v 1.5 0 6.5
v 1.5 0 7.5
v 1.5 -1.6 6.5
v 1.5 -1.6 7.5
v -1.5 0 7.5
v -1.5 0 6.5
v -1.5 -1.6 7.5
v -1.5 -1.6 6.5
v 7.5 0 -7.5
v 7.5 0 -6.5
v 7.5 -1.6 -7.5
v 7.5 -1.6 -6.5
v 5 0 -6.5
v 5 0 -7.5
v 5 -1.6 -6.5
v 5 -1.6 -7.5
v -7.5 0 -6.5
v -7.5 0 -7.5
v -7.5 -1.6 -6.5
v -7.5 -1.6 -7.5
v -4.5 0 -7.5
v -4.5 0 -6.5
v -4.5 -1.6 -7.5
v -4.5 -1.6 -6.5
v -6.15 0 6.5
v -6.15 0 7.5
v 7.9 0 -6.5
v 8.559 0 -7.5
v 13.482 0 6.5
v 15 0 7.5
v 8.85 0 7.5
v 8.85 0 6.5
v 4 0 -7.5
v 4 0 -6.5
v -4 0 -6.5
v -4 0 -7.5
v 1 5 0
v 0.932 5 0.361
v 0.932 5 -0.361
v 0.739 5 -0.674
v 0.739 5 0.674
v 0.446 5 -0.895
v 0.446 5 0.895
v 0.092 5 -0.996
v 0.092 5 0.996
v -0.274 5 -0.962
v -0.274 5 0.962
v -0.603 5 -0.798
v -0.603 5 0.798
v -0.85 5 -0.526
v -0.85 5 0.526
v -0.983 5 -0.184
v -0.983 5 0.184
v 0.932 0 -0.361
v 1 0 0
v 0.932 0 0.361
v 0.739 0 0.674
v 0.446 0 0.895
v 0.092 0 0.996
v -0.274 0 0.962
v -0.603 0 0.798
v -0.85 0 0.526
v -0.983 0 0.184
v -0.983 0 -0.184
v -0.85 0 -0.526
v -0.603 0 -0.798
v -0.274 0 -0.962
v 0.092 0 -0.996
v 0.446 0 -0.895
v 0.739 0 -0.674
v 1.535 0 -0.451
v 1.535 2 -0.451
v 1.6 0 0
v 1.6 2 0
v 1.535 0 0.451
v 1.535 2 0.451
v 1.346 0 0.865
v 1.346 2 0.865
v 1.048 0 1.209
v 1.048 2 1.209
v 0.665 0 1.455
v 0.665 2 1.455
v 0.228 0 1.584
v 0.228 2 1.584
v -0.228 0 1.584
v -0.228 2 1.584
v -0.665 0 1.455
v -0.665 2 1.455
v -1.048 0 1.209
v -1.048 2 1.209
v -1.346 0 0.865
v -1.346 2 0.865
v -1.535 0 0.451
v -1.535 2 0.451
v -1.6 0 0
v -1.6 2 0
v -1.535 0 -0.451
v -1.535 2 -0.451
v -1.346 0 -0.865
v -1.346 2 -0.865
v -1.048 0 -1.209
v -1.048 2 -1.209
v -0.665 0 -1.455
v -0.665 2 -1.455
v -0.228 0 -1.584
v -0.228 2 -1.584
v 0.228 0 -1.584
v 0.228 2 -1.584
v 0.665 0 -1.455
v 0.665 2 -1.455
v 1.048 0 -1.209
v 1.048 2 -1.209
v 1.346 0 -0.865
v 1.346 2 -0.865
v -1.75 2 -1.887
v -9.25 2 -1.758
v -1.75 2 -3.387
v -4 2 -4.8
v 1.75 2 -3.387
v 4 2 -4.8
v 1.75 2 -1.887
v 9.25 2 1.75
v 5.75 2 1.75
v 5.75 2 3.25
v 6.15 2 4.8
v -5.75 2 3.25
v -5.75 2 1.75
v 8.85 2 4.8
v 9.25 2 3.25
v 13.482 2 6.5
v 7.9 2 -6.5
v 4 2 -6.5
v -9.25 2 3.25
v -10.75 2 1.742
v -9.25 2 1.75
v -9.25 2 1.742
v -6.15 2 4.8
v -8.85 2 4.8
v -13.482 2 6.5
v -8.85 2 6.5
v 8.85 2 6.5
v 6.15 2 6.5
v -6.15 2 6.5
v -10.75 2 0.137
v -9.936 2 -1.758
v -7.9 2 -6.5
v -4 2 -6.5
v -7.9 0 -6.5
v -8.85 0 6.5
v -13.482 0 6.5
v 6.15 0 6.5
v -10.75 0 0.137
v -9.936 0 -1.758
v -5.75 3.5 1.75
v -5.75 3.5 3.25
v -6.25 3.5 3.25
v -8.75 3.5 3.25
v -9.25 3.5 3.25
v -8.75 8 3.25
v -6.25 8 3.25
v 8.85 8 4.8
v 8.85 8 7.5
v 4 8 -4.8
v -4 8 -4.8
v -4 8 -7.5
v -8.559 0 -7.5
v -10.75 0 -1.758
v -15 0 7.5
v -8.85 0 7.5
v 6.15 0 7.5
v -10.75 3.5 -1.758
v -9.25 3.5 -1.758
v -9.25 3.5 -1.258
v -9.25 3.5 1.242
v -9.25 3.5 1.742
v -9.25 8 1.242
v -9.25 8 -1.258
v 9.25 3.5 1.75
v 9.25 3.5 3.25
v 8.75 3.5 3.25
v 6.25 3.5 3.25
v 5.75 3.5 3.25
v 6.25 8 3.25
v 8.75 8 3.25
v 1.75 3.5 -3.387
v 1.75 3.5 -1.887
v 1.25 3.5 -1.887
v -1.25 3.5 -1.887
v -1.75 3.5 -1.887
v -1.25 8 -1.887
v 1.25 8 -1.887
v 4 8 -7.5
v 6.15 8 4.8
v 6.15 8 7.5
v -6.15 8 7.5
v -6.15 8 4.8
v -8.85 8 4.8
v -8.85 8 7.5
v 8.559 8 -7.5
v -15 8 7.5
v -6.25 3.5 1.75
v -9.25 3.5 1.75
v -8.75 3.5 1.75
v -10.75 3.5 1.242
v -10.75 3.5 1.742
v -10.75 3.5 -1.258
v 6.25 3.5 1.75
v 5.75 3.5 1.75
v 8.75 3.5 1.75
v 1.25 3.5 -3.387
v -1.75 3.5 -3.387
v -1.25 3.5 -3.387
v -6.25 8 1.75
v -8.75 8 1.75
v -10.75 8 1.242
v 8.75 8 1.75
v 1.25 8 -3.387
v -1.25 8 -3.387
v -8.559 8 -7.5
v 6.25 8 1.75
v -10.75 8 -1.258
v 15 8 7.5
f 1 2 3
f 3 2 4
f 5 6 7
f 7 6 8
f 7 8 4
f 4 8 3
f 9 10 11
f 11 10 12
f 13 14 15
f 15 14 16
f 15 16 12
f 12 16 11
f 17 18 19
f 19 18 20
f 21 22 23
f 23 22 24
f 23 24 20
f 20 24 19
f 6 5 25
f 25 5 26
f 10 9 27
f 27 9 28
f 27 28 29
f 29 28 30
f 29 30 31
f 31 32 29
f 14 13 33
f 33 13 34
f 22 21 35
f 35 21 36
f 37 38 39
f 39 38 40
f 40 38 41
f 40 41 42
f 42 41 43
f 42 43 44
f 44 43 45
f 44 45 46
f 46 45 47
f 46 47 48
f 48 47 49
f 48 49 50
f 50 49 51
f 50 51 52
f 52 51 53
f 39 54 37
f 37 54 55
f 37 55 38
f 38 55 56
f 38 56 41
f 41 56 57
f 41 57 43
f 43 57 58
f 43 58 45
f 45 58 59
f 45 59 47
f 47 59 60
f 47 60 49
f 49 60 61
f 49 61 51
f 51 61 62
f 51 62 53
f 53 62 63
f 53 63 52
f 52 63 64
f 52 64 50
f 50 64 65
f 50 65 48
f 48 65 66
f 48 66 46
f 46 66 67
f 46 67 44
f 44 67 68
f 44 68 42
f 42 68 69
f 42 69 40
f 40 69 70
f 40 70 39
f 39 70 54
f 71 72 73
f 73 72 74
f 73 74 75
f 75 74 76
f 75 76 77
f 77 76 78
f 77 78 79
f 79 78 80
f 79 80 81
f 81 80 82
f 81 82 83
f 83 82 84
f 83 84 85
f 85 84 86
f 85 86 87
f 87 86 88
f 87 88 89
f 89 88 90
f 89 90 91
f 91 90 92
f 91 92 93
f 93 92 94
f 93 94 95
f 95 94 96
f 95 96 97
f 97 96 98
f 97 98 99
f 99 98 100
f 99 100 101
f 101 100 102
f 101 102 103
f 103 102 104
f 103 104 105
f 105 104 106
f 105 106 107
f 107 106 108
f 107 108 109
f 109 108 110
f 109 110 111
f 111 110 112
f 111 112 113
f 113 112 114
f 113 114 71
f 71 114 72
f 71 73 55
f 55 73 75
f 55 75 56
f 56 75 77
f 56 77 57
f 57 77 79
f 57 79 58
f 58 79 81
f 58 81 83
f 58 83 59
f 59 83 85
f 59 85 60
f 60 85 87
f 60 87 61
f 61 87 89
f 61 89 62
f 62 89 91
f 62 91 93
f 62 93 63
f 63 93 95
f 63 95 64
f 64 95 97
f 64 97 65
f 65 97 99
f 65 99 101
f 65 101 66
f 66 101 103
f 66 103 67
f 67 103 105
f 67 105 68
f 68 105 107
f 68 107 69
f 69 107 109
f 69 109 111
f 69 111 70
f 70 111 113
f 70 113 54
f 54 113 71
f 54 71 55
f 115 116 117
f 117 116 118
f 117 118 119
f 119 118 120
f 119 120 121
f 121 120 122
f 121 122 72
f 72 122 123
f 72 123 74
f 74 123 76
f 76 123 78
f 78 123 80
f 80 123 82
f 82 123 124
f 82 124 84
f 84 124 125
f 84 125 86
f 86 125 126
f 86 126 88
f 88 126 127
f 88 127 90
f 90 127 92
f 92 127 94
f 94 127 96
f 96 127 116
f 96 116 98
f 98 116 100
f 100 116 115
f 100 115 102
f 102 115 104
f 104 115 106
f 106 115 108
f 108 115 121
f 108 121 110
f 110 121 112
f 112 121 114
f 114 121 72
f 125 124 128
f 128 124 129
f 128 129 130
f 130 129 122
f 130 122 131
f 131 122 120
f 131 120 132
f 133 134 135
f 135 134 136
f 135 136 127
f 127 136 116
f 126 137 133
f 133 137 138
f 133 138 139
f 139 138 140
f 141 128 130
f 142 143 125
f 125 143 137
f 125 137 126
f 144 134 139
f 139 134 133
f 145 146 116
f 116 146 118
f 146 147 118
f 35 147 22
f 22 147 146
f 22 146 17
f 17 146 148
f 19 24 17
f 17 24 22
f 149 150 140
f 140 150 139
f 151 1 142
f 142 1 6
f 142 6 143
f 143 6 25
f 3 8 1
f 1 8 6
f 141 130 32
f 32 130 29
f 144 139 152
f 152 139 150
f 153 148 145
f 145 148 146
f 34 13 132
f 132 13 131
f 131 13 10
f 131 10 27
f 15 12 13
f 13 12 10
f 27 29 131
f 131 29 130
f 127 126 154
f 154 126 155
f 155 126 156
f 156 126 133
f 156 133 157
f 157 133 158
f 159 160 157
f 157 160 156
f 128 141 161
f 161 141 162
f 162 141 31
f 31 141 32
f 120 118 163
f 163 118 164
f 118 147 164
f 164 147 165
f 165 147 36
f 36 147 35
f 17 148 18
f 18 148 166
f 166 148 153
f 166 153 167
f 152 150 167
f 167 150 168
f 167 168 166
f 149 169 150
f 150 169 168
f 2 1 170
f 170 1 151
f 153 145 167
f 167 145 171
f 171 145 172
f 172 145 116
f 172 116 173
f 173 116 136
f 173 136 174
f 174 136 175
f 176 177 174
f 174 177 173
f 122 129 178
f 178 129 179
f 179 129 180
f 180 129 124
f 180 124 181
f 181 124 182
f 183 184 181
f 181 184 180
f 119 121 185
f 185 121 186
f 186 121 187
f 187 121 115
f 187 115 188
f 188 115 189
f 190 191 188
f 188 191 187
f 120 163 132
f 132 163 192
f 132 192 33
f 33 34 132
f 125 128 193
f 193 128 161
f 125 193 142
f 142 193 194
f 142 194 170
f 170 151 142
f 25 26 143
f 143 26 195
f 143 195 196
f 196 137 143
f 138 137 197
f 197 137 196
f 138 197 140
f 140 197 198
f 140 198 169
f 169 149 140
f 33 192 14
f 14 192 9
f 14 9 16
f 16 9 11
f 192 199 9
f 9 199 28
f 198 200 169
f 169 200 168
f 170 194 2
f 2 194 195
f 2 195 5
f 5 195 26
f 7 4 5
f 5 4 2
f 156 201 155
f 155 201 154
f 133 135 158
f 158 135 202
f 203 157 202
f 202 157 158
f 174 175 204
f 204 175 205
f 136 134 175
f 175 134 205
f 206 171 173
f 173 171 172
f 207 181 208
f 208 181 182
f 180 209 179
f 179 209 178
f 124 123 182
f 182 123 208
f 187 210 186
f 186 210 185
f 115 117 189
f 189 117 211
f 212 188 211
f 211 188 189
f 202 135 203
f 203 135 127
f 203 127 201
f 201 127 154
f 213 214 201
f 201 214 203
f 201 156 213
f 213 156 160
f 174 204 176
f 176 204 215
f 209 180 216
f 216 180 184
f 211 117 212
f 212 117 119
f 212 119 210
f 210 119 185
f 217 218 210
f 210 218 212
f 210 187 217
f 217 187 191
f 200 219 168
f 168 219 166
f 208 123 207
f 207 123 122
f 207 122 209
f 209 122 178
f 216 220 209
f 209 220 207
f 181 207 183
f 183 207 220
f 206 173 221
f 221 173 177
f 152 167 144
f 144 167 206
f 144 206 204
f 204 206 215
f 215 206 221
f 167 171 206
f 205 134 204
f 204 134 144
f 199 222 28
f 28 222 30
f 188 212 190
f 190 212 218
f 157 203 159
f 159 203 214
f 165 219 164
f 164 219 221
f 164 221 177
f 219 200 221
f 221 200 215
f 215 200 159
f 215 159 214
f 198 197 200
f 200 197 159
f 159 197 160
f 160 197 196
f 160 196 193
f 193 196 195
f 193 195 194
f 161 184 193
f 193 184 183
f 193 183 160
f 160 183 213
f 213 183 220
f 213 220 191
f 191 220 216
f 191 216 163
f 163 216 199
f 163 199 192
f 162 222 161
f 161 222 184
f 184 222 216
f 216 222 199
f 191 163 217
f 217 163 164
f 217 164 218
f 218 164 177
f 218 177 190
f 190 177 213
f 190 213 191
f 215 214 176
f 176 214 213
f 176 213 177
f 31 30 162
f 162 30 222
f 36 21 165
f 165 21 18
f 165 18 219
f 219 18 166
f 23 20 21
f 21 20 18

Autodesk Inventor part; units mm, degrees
ref_plane "YZ Plane" through (0, 0, 0) normal (1, 0, 0) x (0, 1, 0)
ref_plane "XZ Plane" through (0, 0, 0) normal (0, 1, 0) x (-1, 0, 0)
ref_plane "XY Plane" through (0, 0, 0) normal (0, 0, 1) x (1, 0, 0)
sketch "Sketch1" plane through (0, 0, 0) normal (0, 1, 0) x (-1, 0, 0)
  line L0 (-15, 7.5) -> (15, 7.5)
  line L1 (15, 7.5) -> (15, -7.5)
  line L2 (15, -7.5) -> (-15, -7.5)
  line L3 (-15, -7.5) -> (-15, 7.5)
  line L4 (-15, 7.5) -> (15, -7.5) construction
  line L5 (15, 7.5) -> (-15, -7.5) construction
  point P0 (0, 0)
  dimension "d0" = 30
  dimension "d1" = 15
extrude "Extrusion1" add sketch "Sketch1" along normal blind 8
sketch "Sketch3" plane through (0, 8, 0) normal (0, 1, 0) x (1, 0, 0)
  line L0 (-15, 7.5) -> (-15, -7.5) projected
  line L1 (-15, -7.5) -> (15, -7.5) projected
  line L2 (-15, -7.5) -> (15, -7.5)
  line L3 (15, -7.5) -> (8.5, 7.6369)
  line L4 (-15, -7.5) -> (-8.5, 7.6369)
  line L5 (-8.5, 7.6369) -> (8.5, 7.6369)
  line L6 (-10.75, -1.2417) -> (-9.25, -1.2417)
  line L7 (-9.25, -1.2417) -> (-9.25, 1.2583)
  line L8 (-9.25, 1.2583) -> (-10.75, 1.2583)
  line L9 (-10.75, 1.2583) -> (-10.75, -1.2417)
  line L10 (-10.75, -1.2417) -> (-9.25, 1.2583) construction
  line L11 (-9.25, -1.2417) -> (-10.75, 1.2583) construction
  line L12 (-6.25, -3.25) -> (-8.75, -3.25)
  line L13 (-8.75, -3.25) -> (-8.75, -1.75)
  line L14 (-8.75, -1.75) -> (-6.25, -1.75)
  line L15 (-6.25, -1.75) -> (-6.25, -3.25)
  line L16 (-6.25, -3.25) -> (-8.75, -1.75) construction
  line L17 (-8.75, -3.25) -> (-6.25, -1.75) construction
  line L18 (8.75, -1.75) -> (6.25, -1.75)
  line L19 (6.25, -1.75) -> (6.25, -3.25)
  line L20 (6.25, -3.25) -> (8.75, -3.25)
  line L21 (8.75, -3.25) -> (8.75, -1.75)
  line L22 (8.75, -1.75) -> (6.25, -3.25) construction
  line L23 (6.25, -1.75) -> (8.75, -3.25) construction
  line L24 (15, 7.5) -> (-15, 7.5) projected
  line L25 (-15, -7.5) -> (-15, 7.5)
  line L26 (-15, 7.5) -> (15, 7.5)
  line L27 (15, 7.5) -> (15, -7.5)
  line L28 (1.25, 1.8869) -> (-1.25, 1.8869)
  line L29 (-1.25, 1.8869) -> (-1.25, 3.3869)
  line L30 (-1.25, 3.3869) -> (1.25, 3.3869)
  line L31 (1.25, 3.3869) -> (1.25, 1.8869)
  line L32 (1.25, 1.8869) -> (-1.25, 3.3869) construction
  line L33 (-1.25, 1.8869) -> (1.25, 3.3869) construction
  point P0 (0, 0)
  point P1 (-10, 0.0083)
  point P2 (-7.5, -2.5)
  point P3 (7.5, -2.5)
  point P4 (0, -7.5)
  point P5 (0, -7.5)
  point P6 (0, 2.6369)
  point P7 (8.5588, 7.5)
  point P8 (-8.5588, 7.5)
  dimension "d19" = 17
  dimension "d20" = 1.5
  dimension "d21" = 2.5
  dimension "d22" = 5
  dimension "d24" = 7.5
  dimension "d25" = 7.5
  dimension "d26" = 5
  dimension "d27" = 5
  dimension "d28" = 5
  dimension "d29" = 0
extrude "Extrusion3" cut sketch "Sketch3" against normal blind 8 contours L24 L4 L0 | L3 L24 L27 | L9 L8 L7 L6 | L12 L13 L14 L15 | L21 L20 L19 L18 | L28 L29 L30 L31
sketch "Sketch4" plane through (0, 0, 0) normal (0, -1, 0) x (1, 0, 0)
  line L0 (-9.25, 1.7417) -> (-10.75, 1.7417)
  line L1 (-10.75, 1.7417) -> (-10.75, -1.7583)
  line L2 (-10.75, -1.7583) -> (-9.25, -1.7583)
  line L3 (-9.25, -1.7583) -> (-9.25, 1.7417)
  line L4 (-9.25, 1.7417) -> (-10.75, -1.7583) construction
  line L5 (-10.75, 1.7417) -> (-9.25, -1.7583) construction
  line L6 (-10.75, -1.2583) -> (-10.75, 1.2417) projected
  line L7 (-9.25, 1.2417) -> (-9.25, -1.2583) projected
  line L8 (-9.25, -1.2583) -> (-10.75, -1.2583) projected
  line L9 (-10.75, 1.2417) -> (-9.25, 1.2417) projected
  line L10 (-8.75, 3.25) -> (-6.25, 3.25) construction
  line L11 (-7.5, 3.25) -> (-7.5, 1.75) construction
  line L12 (-8.75, 1.75) -> (-6.25, 1.75) construction
  line L13 (-1.25, -1.8869) -> (1.25, -1.8869) construction
  line L14 (0, -1.8869) -> (0, -3.3869) construction
  line L15 (1.25, -3.3869) -> (-1.25, -3.3869) construction
  line L16 (6.25, 3.25) -> (8.75, 3.25) construction
  line L17 (7.5, 3.25) -> (7.5, 1.75) construction
  line L18 (8.75, 1.75) -> (6.25, 1.75) construction
  line L19 (9.25, 3.25) -> (5.75, 3.25)
  line L20 (5.75, 3.25) -> (5.75, 1.75)
  line L21 (5.75, 1.75) -> (9.25, 1.75)
  line L22 (9.25, 1.75) -> (9.25, 3.25)
  line L23 (9.25, 3.25) -> (5.75, 1.75) construction
  line L24 (5.75, 3.25) -> (9.25, 1.75) construction
  line L25 (1.75, -1.8869) -> (-1.75, -1.8869)
  line L26 (-1.75, -1.8869) -> (-1.75, -3.3869)
  line L27 (-1.75, -3.3869) -> (1.75, -3.3869)
  line L28 (1.75, -3.3869) -> (1.75, -1.8869)
  line L29 (1.75, -1.8869) -> (-1.75, -3.3869) construction
  line L30 (-1.75, -1.8869) -> (1.75, -3.3869) construction
  line L31 (-5.75, 3.25) -> (-9.25, 3.25)
  line L32 (-9.25, 3.25) -> (-9.25, 1.75)
  line L33 (-9.25, 1.75) -> (-5.75, 1.75)
  line L34 (-5.75, 1.75) -> (-5.75, 3.25)
  line L35 (-5.75, 3.25) -> (-9.25, 1.75) construction
  line L36 (-9.25, 3.25) -> (-5.75, 1.75) construction
  point P0 (0, 0)
  point P1 (-10, -0.0083)
  point P2 (7.5, 2.5)
  point P3 (0, -2.6369)
  point P4 (-7.5, 2.5)
  point P5 (-10.75, 1.2417)
  dimension "d32" = 0
  dimension "d33" = 0
  dimension "d34" = 0.5
  dimension "d35" = 0.5
  dimension "d36" = 3.5
  dimension "d37" = 3.5
  dimension "d38" = 3.5
extrude "Extrusion4" cut sketch "Sketch4" against normal blind 3.5
sketch "Sketch5" plane through (0, 0, 0) normal (0, -1, 0) x (1, 0, 0)
  line L0 (-9.25, -1.7583) -> (-10.75, -1.7583) projected
  line L1 (-15, 7.5) -> (-8.5588, -7.5) projected
  line L2 (8.5588, -7.5) -> (-8.5588, -7.5) projected
  line L3 (-7.8999, -6.5) -> (7.8999, -6.5)
  line L4 (7.8999, -6.5) -> (13.4823, 6.5)
  line L5 (8.5588, -7.5) -> (15, 7.5) projected
  line L6 (-15, 7.5) -> (15, 7.5) projected
  line L7 (13.4823, 6.5) -> (-14, 6.5)
  line L8 (-7.8999, -6.5) -> (-13.4823, 6.5)
  point P0 (0, 0)
  point P1 (-13.4823, 6.5)
  dimension "d41" = 1
  dimension "d42" = 1
  dimension "d43" = 1
  dimension "d44" = 1
  dimension "d45" = 1
  dimension "d46" = 1
sketch "Sketch2" plane through (0, 8, 0) normal (0, 1, 0) x (1, 0, 0)
  line L0 (4, 7.5) -> (-4, 7.5)
  line L1 (-4, 7.5) -> (-4, 4.8)
  line L2 (-4, 4.8) -> (4, 4.8)
  line L3 (4, 4.8) -> (4, 7.5)
  line L4 (4, 7.5) -> (-4, 4.8) construction
  line L5 (-4, 7.5) -> (4, 4.8) construction
  line L6 (-6.15, -4.8) -> (-8.85, -4.8)
  line L7 (-8.85, -4.8) -> (-8.85, -7.5)
  line L8 (-8.85, -7.5) -> (-6.15, -7.5)
  line L9 (-6.15, -7.5) -> (-6.15, -4.8)
  line L10 (-6.15, -4.8) -> (-8.85, -7.5) construction
  line L11 (-8.85, -4.8) -> (-6.15, -7.5) construction
  line L12 (8.85, -4.8) -> (6.15, -4.8)
  line L13 (6.15, -4.8) -> (6.15, -7.5)
  line L14 (6.15, -7.5) -> (8.85, -7.5)
  line L15 (8.85, -7.5) -> (8.85, -4.8)
  line L16 (8.85, -4.8) -> (6.15, -7.5) construction
  line L17 (6.15, -4.8) -> (8.85, -7.5) construction
  point P0 (0, 0)
  point P1 (0, 6.15)
  point P2 (-7.5, -6.15)
  point P3 (7.5, -6.15)
  dimension "d8" = 8
  dimension "d9" = 2.7
  dimension "d10" = 7.5
  dimension "d11" = 2.7
  dimension "d12" = 7.5
  dimension "d13" = 7.5
  dimension "d15" = 7.5
  dimension "d16" = 7.5
extrude "Extrusion2" cut sketch "Sketch2" against normal blind 8
extrude "Extrusion5" cut sketch "Sketch5" against normal blind 2 contours L8 L7 L4 L3
sketch "Sketch6" plane through (0, 2, 0) normal (0, -1, 0) x (1, 0, 0)
  circle A0 centre (0, 0) radius 1
  circle A1 centre (0, 0) radius 1.6
  dimension "d49" = 2
  dimension "d50" = 0.6
extrude "Extrusion6" add sketch "Sketch6" along normal blind 2
sketch "Sketch7" plane through (0, 0, 0) normal (0, -1, 0) x (1, 0, 0)
  circle A0 centre (0, 0) radius 1
  dimension "d74" = 2
extrude "Extrusion7" cut sketch "Sketch7" against normal blind 5
sketch "Sketch8" plane through (0, 0, 0) normal (0, -1, 0) x (1, 0, 0)
  line L0 (-7.5, -7.5) -> (-4.5, -7.5)
  line L1 (-4.5, -7.5) -> (-4.5, -6.5)
  line L2 (-4.5, -6.5) -> (-7.5, -6.5)
  line L3 (-7.5, -6.5) -> (-7.5, -7.5)
  line L4 (7.5, -6.5) -> (5, -6.5)
  line L5 (5, -6.5) -> (5, -7.5)
  line L6 (5, -7.5) -> (7.5, -7.5)
  line L7 (7.5, -7.5) -> (7.5, -6.5)
  line L8 (1.5, 7.5) -> (-1.5, 7.5)
  line L9 (-1.5, 7.5) -> (-1.5, 6.5)
  line L10 (-1.5, 6.5) -> (1.5, 6.5)
  line L11 (1.5, 6.5) -> (1.5, 7.5)
  line L12 (1.5, 7.5) -> (-1.5, 6.5) construction
  line L13 (-1.5, 7.5) -> (1.5, 6.5) construction
  point P0 (0, 0)
  point P1 (0, 7)
  point P2 (-6, -6.5)
  point P3 (6.25, -7.5)
  point P4 (-6, -7.5)
  dimension "d55" = 3
  dimension "d56" = 1
  dimension "d57" = 2.5
  dimension "d58" = 1
  dimension "d59" = 3
  dimension "d60" = 1
  dimension "d62" = 7.5
  dimension "d63" = 7.5
  dimension "d64" = 7.5
  dimension "d72" = 9.5
  dimension "d73" = 6
extrude "Extrusion8" add sketch "Sketch8" along normal blind 1.6
properties part number "MUX"
